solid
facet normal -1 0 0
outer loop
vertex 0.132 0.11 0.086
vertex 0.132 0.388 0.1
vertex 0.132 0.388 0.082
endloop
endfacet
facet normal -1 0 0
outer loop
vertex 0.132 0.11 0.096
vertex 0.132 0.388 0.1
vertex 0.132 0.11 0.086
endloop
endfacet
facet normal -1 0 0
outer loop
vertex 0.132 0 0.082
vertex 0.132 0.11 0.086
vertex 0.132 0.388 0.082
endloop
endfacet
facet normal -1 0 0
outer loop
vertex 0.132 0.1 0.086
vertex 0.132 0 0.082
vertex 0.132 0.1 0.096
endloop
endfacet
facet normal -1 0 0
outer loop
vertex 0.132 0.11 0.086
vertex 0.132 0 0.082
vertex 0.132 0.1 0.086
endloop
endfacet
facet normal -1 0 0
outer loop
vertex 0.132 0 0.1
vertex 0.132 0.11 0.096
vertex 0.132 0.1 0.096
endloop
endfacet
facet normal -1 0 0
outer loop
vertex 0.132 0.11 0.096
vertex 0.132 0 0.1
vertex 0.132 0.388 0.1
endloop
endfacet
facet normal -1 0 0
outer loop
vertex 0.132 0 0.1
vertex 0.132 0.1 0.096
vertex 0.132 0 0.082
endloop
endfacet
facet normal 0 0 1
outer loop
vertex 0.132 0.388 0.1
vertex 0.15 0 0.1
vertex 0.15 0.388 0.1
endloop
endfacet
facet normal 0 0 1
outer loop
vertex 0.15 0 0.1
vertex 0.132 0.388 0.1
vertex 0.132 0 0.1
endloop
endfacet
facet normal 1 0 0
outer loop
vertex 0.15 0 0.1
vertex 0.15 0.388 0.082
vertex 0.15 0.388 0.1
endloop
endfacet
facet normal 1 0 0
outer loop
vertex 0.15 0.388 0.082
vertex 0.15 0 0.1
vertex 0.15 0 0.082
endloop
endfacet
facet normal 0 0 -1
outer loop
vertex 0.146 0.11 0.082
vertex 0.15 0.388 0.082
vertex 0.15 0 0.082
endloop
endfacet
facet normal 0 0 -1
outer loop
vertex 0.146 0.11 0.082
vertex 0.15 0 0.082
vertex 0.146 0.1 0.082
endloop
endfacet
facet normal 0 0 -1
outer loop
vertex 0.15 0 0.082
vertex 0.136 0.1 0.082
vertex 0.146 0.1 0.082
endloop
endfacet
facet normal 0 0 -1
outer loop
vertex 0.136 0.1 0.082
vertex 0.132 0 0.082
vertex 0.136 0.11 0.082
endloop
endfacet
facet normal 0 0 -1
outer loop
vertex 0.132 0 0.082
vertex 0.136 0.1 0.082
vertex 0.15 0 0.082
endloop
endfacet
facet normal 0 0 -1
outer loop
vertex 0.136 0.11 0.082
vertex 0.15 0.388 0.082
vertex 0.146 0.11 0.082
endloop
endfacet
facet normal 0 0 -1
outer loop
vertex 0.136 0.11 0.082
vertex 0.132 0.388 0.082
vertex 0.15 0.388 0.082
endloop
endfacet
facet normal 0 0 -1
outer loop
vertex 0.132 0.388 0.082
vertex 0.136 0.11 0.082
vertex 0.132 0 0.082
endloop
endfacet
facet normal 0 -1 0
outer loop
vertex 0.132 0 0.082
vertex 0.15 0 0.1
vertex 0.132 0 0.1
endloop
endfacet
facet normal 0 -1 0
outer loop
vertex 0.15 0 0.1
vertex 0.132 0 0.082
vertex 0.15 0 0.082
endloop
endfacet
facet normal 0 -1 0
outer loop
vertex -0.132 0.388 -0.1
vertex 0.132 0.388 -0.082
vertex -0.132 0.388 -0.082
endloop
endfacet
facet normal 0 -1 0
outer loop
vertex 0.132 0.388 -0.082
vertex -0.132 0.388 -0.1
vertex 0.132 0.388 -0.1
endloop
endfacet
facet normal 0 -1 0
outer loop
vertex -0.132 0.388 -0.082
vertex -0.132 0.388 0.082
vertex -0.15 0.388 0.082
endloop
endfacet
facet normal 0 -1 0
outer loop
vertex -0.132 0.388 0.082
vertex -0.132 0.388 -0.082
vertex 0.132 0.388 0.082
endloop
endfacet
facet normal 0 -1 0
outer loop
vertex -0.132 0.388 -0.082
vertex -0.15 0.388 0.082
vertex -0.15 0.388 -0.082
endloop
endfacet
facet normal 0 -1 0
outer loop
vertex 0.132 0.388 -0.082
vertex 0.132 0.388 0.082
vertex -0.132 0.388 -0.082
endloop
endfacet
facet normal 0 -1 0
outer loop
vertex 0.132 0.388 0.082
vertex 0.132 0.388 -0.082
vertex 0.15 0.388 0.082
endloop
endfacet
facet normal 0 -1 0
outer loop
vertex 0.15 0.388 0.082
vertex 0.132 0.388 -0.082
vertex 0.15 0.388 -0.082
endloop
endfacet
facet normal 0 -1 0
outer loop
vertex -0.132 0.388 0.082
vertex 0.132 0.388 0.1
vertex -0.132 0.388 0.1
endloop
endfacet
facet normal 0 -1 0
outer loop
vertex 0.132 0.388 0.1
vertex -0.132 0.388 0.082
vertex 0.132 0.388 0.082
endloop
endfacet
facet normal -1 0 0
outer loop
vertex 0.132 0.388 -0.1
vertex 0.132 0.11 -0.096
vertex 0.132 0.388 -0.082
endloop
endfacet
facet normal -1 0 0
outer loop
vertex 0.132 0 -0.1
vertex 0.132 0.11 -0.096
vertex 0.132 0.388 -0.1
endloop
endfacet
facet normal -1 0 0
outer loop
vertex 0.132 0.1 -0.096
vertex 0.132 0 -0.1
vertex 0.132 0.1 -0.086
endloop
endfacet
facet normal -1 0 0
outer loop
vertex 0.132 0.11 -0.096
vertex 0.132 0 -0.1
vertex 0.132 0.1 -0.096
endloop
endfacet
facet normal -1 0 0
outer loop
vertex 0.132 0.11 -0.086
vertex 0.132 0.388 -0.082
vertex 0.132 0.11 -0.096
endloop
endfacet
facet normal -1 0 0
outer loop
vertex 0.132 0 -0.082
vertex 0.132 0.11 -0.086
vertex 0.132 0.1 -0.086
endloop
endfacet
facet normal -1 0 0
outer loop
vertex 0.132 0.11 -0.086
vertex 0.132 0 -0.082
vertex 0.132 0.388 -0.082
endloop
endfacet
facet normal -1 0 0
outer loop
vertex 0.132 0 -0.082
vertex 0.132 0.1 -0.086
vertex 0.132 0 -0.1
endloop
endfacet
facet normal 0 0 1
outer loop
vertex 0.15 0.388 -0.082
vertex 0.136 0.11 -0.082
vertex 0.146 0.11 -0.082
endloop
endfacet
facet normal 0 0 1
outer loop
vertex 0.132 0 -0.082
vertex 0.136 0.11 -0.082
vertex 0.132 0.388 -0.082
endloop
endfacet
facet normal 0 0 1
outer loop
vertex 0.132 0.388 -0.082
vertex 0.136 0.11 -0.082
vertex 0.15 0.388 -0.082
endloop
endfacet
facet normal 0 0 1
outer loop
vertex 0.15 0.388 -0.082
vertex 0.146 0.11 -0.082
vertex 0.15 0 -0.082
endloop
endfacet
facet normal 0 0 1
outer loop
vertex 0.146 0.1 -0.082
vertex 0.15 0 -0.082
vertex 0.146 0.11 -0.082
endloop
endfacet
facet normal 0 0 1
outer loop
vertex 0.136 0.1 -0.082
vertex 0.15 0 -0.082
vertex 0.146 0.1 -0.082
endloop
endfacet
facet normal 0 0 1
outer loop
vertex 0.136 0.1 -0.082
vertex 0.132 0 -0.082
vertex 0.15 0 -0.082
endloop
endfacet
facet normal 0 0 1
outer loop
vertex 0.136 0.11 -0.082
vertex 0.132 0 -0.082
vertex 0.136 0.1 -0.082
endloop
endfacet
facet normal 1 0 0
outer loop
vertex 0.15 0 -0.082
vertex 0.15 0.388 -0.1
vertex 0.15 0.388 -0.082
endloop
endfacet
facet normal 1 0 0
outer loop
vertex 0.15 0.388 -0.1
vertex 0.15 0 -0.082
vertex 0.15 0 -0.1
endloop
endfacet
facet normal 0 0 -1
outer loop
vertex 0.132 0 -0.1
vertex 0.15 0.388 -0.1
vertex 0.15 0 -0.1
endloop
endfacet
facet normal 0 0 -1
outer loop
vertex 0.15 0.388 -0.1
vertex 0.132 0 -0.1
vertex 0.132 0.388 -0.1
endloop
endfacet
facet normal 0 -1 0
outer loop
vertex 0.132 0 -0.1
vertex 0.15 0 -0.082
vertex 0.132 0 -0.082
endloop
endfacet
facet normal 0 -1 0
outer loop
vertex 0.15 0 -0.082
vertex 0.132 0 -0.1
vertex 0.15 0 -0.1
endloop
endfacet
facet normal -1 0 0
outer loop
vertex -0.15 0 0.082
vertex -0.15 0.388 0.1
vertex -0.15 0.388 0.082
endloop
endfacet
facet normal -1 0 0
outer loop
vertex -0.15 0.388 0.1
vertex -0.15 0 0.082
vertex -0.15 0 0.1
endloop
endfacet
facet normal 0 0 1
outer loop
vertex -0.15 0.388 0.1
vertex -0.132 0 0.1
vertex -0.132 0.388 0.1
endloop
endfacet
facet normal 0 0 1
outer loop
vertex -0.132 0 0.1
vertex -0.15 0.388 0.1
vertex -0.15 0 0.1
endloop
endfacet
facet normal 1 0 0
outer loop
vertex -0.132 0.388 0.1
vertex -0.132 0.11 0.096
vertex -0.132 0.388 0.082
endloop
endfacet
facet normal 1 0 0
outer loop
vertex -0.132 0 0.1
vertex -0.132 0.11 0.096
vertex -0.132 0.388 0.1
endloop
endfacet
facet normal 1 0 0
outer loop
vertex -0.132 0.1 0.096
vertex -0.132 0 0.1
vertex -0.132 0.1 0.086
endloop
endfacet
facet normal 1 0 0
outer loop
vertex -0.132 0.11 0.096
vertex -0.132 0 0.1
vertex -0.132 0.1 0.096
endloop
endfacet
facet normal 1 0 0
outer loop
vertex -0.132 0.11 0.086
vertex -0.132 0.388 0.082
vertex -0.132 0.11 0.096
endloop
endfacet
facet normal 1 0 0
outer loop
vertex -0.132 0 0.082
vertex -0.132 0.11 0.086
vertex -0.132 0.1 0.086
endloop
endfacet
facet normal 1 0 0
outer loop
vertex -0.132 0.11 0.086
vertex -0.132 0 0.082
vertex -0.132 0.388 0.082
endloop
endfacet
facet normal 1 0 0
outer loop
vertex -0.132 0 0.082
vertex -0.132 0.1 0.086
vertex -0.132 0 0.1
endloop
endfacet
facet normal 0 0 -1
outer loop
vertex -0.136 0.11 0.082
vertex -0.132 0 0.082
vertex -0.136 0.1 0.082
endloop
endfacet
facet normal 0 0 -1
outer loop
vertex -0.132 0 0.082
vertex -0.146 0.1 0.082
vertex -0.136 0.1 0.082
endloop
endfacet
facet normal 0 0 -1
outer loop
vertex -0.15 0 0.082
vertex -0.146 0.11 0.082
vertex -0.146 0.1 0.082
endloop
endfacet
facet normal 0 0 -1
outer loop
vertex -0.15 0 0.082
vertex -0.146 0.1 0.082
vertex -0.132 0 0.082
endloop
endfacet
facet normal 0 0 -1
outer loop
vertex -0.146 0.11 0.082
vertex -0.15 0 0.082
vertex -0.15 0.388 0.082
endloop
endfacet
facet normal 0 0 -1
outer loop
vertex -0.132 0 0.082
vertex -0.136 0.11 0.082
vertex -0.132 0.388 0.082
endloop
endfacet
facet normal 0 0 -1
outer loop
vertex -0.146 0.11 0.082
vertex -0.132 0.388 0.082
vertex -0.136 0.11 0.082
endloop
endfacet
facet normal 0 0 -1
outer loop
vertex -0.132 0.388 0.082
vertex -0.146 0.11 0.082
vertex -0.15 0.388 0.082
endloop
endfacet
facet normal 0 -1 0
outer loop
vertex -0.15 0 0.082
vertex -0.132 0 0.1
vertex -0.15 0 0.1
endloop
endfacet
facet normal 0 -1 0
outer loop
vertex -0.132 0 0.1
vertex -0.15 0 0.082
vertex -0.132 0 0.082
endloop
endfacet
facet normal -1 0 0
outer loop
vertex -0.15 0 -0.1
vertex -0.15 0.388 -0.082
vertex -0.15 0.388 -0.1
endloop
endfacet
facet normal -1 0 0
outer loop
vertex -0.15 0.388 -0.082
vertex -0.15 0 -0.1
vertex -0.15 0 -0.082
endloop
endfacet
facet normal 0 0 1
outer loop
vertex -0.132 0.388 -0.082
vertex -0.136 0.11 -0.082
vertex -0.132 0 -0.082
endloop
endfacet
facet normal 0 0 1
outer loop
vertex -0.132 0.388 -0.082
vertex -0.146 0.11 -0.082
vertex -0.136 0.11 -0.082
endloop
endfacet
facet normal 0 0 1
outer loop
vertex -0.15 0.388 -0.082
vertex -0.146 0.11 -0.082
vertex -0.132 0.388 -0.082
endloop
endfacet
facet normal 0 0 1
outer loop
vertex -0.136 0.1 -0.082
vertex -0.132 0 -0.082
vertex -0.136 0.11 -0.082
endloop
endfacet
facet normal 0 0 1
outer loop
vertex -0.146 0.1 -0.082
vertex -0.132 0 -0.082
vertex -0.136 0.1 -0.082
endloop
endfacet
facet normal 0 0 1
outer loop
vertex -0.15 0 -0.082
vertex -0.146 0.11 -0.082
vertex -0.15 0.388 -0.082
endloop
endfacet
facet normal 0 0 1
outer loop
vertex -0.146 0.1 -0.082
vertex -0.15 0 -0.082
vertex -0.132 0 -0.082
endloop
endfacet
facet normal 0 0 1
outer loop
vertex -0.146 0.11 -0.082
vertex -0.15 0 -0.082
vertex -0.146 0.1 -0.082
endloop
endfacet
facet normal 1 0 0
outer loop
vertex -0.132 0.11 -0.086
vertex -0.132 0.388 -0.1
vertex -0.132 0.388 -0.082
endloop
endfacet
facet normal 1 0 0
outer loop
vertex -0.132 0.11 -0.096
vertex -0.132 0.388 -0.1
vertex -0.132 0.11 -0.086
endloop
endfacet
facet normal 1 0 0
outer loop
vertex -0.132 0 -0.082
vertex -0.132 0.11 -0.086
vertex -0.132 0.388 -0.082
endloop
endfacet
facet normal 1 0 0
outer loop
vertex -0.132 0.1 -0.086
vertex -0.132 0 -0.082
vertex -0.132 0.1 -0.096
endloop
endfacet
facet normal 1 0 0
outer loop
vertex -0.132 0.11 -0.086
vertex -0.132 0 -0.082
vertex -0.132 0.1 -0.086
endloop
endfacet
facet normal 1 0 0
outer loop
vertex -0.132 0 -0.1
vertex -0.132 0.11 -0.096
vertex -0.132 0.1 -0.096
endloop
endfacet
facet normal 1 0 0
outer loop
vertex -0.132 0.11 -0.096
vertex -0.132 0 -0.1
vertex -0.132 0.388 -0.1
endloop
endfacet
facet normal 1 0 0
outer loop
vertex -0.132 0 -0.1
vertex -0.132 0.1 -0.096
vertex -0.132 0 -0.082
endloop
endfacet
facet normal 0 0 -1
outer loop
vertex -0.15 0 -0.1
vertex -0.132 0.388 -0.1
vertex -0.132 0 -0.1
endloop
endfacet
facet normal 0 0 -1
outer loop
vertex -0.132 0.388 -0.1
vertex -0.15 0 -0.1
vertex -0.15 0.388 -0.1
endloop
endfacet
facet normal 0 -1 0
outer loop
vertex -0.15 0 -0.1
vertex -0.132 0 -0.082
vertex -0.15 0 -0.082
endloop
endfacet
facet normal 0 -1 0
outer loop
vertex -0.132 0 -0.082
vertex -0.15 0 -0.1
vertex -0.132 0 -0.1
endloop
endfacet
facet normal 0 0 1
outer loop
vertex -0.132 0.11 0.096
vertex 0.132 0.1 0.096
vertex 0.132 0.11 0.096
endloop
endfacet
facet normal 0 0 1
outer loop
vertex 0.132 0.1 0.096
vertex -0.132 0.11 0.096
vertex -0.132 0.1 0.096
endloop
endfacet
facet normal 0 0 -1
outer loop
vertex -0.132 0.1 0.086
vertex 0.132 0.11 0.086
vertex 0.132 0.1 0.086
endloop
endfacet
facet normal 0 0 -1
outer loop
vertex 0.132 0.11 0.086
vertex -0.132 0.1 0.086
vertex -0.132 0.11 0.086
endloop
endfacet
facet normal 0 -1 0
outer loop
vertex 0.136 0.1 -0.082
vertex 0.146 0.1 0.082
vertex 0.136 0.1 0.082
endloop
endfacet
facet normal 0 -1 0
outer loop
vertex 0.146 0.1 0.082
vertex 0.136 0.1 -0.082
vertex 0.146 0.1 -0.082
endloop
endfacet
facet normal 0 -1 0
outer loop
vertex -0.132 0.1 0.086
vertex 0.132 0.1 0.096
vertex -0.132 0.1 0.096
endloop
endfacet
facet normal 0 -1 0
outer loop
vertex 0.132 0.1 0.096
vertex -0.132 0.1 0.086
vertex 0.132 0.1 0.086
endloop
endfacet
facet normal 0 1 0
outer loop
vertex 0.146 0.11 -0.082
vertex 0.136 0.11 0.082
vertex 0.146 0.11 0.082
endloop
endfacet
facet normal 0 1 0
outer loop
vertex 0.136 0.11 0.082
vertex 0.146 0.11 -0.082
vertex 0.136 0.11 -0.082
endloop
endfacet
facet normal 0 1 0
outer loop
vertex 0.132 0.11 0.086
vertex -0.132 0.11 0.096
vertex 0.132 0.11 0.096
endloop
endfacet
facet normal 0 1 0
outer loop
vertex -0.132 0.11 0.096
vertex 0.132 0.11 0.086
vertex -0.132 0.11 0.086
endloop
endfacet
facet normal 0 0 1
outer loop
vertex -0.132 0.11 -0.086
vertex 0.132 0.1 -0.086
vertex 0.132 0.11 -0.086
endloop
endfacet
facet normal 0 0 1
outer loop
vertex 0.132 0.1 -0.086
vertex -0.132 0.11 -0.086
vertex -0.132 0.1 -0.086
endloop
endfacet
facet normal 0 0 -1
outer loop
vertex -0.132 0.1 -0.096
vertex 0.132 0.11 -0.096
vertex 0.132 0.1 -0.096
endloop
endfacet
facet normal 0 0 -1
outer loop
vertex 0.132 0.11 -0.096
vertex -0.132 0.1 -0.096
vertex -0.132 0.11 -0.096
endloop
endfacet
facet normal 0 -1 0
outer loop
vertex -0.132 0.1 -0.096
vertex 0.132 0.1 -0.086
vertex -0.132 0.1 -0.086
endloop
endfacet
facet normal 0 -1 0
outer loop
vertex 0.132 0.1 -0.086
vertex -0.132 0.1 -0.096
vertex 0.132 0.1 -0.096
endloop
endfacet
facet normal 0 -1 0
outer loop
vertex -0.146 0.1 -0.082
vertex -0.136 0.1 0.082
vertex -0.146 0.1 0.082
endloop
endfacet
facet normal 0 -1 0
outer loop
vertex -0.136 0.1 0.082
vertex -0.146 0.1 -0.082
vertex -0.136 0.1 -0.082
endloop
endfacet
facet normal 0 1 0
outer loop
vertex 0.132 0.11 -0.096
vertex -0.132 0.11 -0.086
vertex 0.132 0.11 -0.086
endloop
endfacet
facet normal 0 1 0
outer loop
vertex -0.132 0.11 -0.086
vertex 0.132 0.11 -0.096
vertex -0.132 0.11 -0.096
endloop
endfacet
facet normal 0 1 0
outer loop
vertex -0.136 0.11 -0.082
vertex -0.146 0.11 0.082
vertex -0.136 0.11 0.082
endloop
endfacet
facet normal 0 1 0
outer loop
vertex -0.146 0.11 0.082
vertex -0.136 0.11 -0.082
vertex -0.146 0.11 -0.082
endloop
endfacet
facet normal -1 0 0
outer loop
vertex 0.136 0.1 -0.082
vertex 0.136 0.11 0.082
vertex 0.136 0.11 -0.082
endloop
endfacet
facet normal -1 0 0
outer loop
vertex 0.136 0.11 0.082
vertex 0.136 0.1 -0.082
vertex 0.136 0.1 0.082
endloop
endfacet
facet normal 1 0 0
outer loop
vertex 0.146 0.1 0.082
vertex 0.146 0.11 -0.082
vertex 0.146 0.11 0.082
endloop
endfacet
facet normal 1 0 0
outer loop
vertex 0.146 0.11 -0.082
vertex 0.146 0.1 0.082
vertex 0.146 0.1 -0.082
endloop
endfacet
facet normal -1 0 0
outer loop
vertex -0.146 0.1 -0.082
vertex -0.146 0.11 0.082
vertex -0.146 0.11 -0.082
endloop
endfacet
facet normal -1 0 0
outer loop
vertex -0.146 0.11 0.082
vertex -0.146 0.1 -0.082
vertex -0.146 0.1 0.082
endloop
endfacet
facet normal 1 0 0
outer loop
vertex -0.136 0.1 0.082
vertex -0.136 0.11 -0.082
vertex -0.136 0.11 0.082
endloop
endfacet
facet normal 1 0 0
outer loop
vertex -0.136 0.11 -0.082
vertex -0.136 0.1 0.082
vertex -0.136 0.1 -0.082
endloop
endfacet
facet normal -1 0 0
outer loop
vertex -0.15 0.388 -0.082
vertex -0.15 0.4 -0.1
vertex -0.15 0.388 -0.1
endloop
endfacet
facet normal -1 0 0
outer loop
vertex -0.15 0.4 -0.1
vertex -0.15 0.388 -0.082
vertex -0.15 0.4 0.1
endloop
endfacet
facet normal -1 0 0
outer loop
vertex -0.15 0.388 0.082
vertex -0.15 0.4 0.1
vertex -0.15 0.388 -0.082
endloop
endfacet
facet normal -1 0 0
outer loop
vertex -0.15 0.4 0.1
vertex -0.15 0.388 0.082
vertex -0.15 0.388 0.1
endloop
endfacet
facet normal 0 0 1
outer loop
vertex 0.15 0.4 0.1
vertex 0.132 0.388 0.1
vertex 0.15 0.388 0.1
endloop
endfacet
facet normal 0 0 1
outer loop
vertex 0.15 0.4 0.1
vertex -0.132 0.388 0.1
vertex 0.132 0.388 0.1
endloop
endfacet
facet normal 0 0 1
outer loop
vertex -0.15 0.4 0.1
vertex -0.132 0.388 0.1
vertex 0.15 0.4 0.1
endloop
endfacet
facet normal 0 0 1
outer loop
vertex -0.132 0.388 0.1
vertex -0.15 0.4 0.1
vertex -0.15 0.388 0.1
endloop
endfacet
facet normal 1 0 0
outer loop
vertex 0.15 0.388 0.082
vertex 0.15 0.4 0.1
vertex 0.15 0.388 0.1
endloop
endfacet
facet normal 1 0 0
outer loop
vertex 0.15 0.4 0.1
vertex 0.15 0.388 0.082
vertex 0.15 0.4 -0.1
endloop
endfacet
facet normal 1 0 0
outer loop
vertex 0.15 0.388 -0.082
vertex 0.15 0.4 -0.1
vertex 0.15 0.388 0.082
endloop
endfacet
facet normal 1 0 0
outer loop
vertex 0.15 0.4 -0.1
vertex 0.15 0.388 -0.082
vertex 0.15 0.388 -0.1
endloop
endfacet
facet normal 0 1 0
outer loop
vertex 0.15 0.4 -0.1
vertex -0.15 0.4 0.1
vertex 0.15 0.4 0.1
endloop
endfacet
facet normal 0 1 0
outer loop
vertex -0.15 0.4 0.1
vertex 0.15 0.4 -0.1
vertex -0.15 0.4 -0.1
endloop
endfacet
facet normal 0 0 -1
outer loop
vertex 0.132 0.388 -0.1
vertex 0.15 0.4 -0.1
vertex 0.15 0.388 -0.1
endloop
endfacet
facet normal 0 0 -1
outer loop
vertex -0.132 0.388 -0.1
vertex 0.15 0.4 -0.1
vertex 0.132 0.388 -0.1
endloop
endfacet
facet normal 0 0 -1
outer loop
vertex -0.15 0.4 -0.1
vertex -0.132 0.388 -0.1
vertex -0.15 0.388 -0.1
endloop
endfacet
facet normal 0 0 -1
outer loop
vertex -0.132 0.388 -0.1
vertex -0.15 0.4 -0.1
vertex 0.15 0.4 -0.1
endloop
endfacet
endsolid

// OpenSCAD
// ── Four-Legged Rectangular Equipment Stand ──────────────────────────────────
// Units: meters  |  +Y up, +Z forward  |  base sits at Z=0 (surface object)

// ── Key parameters ────────────────────────────────────────────────────────────
stand_height      = 0.40;   // total height of the stand (m)
top_width         = 0.30;   // width  of the top platform (X)
top_depth         = 0.20;   // depth  of the top platform (Z)
top_thickness     = 0.012;  // thickness of the top shelf

leg_width         = 0.018;  // square cross-section side of each leg
foot_height       = 0.010;  // small foot pad under each leg
brace_height      = 0.10;   // height of horizontal cross-brace above ground
brace_thickness   = 0.010;  // thickness of the brace bar

// ── Derived values ────────────────────────────────────────────────────────────
leg_height  = stand_height - top_thickness - foot_height;
// Leg centres inset half a leg-width from the platform corners
lx = top_width  / 2 - leg_width / 2;
lz = top_depth  / 2 - leg_width / 2;

// ── Helper: a single leg + foot pad ──────────────────────────────────────────
module leg_with_foot(x, z) {
    translate([x, 0, z]) {
        // foot pad
        translate([-leg_width/2, 0, -leg_width/2])
            cube([leg_width, foot_height, leg_width]);
        // leg column
        translate([-leg_width/2, foot_height, -leg_width/2])
            cube([leg_width, leg_height, leg_width]);
    }
}

// ── Helper: horizontal brace (runs in X between two legs) ────────────────────
module brace_x(z_pos) {
    // spans between the two legs at z_pos
    brace_len = top_width - leg_width;
    translate([-brace_len/2, brace_height, z_pos - brace_thickness/2])
        cube([brace_len, brace_thickness, brace_thickness]);
}

// ── Helper: horizontal brace (runs in Z between two legs) ────────────────────
module brace_z(x_pos) {
    brace_len = top_depth - leg_width;
    translate([x_pos - brace_thickness/2, brace_height, -brace_len/2])
        cube([brace_thickness, brace_thickness, brace_len]);
}

// ── Assembly ──────────────────────────────────────────────────────────────────
union() {
    // Four legs (one at each corner)
    leg_with_foot( lx,  lz);
    leg_with_foot( lx, -lz);
    leg_with_foot(-lx,  lz);
    leg_with_foot(-lx, -lz);

    // Horizontal braces – two along X, two along Z
    brace_x( lz);
    brace_x(-lz);
    brace_z( lx);
    brace_z(-lx);

    // Top platform shelf
    translate([-top_width/2, stand_height - top_thickness, -top_depth/2])
        cube([top_width, top_thickness, top_depth]);
}
